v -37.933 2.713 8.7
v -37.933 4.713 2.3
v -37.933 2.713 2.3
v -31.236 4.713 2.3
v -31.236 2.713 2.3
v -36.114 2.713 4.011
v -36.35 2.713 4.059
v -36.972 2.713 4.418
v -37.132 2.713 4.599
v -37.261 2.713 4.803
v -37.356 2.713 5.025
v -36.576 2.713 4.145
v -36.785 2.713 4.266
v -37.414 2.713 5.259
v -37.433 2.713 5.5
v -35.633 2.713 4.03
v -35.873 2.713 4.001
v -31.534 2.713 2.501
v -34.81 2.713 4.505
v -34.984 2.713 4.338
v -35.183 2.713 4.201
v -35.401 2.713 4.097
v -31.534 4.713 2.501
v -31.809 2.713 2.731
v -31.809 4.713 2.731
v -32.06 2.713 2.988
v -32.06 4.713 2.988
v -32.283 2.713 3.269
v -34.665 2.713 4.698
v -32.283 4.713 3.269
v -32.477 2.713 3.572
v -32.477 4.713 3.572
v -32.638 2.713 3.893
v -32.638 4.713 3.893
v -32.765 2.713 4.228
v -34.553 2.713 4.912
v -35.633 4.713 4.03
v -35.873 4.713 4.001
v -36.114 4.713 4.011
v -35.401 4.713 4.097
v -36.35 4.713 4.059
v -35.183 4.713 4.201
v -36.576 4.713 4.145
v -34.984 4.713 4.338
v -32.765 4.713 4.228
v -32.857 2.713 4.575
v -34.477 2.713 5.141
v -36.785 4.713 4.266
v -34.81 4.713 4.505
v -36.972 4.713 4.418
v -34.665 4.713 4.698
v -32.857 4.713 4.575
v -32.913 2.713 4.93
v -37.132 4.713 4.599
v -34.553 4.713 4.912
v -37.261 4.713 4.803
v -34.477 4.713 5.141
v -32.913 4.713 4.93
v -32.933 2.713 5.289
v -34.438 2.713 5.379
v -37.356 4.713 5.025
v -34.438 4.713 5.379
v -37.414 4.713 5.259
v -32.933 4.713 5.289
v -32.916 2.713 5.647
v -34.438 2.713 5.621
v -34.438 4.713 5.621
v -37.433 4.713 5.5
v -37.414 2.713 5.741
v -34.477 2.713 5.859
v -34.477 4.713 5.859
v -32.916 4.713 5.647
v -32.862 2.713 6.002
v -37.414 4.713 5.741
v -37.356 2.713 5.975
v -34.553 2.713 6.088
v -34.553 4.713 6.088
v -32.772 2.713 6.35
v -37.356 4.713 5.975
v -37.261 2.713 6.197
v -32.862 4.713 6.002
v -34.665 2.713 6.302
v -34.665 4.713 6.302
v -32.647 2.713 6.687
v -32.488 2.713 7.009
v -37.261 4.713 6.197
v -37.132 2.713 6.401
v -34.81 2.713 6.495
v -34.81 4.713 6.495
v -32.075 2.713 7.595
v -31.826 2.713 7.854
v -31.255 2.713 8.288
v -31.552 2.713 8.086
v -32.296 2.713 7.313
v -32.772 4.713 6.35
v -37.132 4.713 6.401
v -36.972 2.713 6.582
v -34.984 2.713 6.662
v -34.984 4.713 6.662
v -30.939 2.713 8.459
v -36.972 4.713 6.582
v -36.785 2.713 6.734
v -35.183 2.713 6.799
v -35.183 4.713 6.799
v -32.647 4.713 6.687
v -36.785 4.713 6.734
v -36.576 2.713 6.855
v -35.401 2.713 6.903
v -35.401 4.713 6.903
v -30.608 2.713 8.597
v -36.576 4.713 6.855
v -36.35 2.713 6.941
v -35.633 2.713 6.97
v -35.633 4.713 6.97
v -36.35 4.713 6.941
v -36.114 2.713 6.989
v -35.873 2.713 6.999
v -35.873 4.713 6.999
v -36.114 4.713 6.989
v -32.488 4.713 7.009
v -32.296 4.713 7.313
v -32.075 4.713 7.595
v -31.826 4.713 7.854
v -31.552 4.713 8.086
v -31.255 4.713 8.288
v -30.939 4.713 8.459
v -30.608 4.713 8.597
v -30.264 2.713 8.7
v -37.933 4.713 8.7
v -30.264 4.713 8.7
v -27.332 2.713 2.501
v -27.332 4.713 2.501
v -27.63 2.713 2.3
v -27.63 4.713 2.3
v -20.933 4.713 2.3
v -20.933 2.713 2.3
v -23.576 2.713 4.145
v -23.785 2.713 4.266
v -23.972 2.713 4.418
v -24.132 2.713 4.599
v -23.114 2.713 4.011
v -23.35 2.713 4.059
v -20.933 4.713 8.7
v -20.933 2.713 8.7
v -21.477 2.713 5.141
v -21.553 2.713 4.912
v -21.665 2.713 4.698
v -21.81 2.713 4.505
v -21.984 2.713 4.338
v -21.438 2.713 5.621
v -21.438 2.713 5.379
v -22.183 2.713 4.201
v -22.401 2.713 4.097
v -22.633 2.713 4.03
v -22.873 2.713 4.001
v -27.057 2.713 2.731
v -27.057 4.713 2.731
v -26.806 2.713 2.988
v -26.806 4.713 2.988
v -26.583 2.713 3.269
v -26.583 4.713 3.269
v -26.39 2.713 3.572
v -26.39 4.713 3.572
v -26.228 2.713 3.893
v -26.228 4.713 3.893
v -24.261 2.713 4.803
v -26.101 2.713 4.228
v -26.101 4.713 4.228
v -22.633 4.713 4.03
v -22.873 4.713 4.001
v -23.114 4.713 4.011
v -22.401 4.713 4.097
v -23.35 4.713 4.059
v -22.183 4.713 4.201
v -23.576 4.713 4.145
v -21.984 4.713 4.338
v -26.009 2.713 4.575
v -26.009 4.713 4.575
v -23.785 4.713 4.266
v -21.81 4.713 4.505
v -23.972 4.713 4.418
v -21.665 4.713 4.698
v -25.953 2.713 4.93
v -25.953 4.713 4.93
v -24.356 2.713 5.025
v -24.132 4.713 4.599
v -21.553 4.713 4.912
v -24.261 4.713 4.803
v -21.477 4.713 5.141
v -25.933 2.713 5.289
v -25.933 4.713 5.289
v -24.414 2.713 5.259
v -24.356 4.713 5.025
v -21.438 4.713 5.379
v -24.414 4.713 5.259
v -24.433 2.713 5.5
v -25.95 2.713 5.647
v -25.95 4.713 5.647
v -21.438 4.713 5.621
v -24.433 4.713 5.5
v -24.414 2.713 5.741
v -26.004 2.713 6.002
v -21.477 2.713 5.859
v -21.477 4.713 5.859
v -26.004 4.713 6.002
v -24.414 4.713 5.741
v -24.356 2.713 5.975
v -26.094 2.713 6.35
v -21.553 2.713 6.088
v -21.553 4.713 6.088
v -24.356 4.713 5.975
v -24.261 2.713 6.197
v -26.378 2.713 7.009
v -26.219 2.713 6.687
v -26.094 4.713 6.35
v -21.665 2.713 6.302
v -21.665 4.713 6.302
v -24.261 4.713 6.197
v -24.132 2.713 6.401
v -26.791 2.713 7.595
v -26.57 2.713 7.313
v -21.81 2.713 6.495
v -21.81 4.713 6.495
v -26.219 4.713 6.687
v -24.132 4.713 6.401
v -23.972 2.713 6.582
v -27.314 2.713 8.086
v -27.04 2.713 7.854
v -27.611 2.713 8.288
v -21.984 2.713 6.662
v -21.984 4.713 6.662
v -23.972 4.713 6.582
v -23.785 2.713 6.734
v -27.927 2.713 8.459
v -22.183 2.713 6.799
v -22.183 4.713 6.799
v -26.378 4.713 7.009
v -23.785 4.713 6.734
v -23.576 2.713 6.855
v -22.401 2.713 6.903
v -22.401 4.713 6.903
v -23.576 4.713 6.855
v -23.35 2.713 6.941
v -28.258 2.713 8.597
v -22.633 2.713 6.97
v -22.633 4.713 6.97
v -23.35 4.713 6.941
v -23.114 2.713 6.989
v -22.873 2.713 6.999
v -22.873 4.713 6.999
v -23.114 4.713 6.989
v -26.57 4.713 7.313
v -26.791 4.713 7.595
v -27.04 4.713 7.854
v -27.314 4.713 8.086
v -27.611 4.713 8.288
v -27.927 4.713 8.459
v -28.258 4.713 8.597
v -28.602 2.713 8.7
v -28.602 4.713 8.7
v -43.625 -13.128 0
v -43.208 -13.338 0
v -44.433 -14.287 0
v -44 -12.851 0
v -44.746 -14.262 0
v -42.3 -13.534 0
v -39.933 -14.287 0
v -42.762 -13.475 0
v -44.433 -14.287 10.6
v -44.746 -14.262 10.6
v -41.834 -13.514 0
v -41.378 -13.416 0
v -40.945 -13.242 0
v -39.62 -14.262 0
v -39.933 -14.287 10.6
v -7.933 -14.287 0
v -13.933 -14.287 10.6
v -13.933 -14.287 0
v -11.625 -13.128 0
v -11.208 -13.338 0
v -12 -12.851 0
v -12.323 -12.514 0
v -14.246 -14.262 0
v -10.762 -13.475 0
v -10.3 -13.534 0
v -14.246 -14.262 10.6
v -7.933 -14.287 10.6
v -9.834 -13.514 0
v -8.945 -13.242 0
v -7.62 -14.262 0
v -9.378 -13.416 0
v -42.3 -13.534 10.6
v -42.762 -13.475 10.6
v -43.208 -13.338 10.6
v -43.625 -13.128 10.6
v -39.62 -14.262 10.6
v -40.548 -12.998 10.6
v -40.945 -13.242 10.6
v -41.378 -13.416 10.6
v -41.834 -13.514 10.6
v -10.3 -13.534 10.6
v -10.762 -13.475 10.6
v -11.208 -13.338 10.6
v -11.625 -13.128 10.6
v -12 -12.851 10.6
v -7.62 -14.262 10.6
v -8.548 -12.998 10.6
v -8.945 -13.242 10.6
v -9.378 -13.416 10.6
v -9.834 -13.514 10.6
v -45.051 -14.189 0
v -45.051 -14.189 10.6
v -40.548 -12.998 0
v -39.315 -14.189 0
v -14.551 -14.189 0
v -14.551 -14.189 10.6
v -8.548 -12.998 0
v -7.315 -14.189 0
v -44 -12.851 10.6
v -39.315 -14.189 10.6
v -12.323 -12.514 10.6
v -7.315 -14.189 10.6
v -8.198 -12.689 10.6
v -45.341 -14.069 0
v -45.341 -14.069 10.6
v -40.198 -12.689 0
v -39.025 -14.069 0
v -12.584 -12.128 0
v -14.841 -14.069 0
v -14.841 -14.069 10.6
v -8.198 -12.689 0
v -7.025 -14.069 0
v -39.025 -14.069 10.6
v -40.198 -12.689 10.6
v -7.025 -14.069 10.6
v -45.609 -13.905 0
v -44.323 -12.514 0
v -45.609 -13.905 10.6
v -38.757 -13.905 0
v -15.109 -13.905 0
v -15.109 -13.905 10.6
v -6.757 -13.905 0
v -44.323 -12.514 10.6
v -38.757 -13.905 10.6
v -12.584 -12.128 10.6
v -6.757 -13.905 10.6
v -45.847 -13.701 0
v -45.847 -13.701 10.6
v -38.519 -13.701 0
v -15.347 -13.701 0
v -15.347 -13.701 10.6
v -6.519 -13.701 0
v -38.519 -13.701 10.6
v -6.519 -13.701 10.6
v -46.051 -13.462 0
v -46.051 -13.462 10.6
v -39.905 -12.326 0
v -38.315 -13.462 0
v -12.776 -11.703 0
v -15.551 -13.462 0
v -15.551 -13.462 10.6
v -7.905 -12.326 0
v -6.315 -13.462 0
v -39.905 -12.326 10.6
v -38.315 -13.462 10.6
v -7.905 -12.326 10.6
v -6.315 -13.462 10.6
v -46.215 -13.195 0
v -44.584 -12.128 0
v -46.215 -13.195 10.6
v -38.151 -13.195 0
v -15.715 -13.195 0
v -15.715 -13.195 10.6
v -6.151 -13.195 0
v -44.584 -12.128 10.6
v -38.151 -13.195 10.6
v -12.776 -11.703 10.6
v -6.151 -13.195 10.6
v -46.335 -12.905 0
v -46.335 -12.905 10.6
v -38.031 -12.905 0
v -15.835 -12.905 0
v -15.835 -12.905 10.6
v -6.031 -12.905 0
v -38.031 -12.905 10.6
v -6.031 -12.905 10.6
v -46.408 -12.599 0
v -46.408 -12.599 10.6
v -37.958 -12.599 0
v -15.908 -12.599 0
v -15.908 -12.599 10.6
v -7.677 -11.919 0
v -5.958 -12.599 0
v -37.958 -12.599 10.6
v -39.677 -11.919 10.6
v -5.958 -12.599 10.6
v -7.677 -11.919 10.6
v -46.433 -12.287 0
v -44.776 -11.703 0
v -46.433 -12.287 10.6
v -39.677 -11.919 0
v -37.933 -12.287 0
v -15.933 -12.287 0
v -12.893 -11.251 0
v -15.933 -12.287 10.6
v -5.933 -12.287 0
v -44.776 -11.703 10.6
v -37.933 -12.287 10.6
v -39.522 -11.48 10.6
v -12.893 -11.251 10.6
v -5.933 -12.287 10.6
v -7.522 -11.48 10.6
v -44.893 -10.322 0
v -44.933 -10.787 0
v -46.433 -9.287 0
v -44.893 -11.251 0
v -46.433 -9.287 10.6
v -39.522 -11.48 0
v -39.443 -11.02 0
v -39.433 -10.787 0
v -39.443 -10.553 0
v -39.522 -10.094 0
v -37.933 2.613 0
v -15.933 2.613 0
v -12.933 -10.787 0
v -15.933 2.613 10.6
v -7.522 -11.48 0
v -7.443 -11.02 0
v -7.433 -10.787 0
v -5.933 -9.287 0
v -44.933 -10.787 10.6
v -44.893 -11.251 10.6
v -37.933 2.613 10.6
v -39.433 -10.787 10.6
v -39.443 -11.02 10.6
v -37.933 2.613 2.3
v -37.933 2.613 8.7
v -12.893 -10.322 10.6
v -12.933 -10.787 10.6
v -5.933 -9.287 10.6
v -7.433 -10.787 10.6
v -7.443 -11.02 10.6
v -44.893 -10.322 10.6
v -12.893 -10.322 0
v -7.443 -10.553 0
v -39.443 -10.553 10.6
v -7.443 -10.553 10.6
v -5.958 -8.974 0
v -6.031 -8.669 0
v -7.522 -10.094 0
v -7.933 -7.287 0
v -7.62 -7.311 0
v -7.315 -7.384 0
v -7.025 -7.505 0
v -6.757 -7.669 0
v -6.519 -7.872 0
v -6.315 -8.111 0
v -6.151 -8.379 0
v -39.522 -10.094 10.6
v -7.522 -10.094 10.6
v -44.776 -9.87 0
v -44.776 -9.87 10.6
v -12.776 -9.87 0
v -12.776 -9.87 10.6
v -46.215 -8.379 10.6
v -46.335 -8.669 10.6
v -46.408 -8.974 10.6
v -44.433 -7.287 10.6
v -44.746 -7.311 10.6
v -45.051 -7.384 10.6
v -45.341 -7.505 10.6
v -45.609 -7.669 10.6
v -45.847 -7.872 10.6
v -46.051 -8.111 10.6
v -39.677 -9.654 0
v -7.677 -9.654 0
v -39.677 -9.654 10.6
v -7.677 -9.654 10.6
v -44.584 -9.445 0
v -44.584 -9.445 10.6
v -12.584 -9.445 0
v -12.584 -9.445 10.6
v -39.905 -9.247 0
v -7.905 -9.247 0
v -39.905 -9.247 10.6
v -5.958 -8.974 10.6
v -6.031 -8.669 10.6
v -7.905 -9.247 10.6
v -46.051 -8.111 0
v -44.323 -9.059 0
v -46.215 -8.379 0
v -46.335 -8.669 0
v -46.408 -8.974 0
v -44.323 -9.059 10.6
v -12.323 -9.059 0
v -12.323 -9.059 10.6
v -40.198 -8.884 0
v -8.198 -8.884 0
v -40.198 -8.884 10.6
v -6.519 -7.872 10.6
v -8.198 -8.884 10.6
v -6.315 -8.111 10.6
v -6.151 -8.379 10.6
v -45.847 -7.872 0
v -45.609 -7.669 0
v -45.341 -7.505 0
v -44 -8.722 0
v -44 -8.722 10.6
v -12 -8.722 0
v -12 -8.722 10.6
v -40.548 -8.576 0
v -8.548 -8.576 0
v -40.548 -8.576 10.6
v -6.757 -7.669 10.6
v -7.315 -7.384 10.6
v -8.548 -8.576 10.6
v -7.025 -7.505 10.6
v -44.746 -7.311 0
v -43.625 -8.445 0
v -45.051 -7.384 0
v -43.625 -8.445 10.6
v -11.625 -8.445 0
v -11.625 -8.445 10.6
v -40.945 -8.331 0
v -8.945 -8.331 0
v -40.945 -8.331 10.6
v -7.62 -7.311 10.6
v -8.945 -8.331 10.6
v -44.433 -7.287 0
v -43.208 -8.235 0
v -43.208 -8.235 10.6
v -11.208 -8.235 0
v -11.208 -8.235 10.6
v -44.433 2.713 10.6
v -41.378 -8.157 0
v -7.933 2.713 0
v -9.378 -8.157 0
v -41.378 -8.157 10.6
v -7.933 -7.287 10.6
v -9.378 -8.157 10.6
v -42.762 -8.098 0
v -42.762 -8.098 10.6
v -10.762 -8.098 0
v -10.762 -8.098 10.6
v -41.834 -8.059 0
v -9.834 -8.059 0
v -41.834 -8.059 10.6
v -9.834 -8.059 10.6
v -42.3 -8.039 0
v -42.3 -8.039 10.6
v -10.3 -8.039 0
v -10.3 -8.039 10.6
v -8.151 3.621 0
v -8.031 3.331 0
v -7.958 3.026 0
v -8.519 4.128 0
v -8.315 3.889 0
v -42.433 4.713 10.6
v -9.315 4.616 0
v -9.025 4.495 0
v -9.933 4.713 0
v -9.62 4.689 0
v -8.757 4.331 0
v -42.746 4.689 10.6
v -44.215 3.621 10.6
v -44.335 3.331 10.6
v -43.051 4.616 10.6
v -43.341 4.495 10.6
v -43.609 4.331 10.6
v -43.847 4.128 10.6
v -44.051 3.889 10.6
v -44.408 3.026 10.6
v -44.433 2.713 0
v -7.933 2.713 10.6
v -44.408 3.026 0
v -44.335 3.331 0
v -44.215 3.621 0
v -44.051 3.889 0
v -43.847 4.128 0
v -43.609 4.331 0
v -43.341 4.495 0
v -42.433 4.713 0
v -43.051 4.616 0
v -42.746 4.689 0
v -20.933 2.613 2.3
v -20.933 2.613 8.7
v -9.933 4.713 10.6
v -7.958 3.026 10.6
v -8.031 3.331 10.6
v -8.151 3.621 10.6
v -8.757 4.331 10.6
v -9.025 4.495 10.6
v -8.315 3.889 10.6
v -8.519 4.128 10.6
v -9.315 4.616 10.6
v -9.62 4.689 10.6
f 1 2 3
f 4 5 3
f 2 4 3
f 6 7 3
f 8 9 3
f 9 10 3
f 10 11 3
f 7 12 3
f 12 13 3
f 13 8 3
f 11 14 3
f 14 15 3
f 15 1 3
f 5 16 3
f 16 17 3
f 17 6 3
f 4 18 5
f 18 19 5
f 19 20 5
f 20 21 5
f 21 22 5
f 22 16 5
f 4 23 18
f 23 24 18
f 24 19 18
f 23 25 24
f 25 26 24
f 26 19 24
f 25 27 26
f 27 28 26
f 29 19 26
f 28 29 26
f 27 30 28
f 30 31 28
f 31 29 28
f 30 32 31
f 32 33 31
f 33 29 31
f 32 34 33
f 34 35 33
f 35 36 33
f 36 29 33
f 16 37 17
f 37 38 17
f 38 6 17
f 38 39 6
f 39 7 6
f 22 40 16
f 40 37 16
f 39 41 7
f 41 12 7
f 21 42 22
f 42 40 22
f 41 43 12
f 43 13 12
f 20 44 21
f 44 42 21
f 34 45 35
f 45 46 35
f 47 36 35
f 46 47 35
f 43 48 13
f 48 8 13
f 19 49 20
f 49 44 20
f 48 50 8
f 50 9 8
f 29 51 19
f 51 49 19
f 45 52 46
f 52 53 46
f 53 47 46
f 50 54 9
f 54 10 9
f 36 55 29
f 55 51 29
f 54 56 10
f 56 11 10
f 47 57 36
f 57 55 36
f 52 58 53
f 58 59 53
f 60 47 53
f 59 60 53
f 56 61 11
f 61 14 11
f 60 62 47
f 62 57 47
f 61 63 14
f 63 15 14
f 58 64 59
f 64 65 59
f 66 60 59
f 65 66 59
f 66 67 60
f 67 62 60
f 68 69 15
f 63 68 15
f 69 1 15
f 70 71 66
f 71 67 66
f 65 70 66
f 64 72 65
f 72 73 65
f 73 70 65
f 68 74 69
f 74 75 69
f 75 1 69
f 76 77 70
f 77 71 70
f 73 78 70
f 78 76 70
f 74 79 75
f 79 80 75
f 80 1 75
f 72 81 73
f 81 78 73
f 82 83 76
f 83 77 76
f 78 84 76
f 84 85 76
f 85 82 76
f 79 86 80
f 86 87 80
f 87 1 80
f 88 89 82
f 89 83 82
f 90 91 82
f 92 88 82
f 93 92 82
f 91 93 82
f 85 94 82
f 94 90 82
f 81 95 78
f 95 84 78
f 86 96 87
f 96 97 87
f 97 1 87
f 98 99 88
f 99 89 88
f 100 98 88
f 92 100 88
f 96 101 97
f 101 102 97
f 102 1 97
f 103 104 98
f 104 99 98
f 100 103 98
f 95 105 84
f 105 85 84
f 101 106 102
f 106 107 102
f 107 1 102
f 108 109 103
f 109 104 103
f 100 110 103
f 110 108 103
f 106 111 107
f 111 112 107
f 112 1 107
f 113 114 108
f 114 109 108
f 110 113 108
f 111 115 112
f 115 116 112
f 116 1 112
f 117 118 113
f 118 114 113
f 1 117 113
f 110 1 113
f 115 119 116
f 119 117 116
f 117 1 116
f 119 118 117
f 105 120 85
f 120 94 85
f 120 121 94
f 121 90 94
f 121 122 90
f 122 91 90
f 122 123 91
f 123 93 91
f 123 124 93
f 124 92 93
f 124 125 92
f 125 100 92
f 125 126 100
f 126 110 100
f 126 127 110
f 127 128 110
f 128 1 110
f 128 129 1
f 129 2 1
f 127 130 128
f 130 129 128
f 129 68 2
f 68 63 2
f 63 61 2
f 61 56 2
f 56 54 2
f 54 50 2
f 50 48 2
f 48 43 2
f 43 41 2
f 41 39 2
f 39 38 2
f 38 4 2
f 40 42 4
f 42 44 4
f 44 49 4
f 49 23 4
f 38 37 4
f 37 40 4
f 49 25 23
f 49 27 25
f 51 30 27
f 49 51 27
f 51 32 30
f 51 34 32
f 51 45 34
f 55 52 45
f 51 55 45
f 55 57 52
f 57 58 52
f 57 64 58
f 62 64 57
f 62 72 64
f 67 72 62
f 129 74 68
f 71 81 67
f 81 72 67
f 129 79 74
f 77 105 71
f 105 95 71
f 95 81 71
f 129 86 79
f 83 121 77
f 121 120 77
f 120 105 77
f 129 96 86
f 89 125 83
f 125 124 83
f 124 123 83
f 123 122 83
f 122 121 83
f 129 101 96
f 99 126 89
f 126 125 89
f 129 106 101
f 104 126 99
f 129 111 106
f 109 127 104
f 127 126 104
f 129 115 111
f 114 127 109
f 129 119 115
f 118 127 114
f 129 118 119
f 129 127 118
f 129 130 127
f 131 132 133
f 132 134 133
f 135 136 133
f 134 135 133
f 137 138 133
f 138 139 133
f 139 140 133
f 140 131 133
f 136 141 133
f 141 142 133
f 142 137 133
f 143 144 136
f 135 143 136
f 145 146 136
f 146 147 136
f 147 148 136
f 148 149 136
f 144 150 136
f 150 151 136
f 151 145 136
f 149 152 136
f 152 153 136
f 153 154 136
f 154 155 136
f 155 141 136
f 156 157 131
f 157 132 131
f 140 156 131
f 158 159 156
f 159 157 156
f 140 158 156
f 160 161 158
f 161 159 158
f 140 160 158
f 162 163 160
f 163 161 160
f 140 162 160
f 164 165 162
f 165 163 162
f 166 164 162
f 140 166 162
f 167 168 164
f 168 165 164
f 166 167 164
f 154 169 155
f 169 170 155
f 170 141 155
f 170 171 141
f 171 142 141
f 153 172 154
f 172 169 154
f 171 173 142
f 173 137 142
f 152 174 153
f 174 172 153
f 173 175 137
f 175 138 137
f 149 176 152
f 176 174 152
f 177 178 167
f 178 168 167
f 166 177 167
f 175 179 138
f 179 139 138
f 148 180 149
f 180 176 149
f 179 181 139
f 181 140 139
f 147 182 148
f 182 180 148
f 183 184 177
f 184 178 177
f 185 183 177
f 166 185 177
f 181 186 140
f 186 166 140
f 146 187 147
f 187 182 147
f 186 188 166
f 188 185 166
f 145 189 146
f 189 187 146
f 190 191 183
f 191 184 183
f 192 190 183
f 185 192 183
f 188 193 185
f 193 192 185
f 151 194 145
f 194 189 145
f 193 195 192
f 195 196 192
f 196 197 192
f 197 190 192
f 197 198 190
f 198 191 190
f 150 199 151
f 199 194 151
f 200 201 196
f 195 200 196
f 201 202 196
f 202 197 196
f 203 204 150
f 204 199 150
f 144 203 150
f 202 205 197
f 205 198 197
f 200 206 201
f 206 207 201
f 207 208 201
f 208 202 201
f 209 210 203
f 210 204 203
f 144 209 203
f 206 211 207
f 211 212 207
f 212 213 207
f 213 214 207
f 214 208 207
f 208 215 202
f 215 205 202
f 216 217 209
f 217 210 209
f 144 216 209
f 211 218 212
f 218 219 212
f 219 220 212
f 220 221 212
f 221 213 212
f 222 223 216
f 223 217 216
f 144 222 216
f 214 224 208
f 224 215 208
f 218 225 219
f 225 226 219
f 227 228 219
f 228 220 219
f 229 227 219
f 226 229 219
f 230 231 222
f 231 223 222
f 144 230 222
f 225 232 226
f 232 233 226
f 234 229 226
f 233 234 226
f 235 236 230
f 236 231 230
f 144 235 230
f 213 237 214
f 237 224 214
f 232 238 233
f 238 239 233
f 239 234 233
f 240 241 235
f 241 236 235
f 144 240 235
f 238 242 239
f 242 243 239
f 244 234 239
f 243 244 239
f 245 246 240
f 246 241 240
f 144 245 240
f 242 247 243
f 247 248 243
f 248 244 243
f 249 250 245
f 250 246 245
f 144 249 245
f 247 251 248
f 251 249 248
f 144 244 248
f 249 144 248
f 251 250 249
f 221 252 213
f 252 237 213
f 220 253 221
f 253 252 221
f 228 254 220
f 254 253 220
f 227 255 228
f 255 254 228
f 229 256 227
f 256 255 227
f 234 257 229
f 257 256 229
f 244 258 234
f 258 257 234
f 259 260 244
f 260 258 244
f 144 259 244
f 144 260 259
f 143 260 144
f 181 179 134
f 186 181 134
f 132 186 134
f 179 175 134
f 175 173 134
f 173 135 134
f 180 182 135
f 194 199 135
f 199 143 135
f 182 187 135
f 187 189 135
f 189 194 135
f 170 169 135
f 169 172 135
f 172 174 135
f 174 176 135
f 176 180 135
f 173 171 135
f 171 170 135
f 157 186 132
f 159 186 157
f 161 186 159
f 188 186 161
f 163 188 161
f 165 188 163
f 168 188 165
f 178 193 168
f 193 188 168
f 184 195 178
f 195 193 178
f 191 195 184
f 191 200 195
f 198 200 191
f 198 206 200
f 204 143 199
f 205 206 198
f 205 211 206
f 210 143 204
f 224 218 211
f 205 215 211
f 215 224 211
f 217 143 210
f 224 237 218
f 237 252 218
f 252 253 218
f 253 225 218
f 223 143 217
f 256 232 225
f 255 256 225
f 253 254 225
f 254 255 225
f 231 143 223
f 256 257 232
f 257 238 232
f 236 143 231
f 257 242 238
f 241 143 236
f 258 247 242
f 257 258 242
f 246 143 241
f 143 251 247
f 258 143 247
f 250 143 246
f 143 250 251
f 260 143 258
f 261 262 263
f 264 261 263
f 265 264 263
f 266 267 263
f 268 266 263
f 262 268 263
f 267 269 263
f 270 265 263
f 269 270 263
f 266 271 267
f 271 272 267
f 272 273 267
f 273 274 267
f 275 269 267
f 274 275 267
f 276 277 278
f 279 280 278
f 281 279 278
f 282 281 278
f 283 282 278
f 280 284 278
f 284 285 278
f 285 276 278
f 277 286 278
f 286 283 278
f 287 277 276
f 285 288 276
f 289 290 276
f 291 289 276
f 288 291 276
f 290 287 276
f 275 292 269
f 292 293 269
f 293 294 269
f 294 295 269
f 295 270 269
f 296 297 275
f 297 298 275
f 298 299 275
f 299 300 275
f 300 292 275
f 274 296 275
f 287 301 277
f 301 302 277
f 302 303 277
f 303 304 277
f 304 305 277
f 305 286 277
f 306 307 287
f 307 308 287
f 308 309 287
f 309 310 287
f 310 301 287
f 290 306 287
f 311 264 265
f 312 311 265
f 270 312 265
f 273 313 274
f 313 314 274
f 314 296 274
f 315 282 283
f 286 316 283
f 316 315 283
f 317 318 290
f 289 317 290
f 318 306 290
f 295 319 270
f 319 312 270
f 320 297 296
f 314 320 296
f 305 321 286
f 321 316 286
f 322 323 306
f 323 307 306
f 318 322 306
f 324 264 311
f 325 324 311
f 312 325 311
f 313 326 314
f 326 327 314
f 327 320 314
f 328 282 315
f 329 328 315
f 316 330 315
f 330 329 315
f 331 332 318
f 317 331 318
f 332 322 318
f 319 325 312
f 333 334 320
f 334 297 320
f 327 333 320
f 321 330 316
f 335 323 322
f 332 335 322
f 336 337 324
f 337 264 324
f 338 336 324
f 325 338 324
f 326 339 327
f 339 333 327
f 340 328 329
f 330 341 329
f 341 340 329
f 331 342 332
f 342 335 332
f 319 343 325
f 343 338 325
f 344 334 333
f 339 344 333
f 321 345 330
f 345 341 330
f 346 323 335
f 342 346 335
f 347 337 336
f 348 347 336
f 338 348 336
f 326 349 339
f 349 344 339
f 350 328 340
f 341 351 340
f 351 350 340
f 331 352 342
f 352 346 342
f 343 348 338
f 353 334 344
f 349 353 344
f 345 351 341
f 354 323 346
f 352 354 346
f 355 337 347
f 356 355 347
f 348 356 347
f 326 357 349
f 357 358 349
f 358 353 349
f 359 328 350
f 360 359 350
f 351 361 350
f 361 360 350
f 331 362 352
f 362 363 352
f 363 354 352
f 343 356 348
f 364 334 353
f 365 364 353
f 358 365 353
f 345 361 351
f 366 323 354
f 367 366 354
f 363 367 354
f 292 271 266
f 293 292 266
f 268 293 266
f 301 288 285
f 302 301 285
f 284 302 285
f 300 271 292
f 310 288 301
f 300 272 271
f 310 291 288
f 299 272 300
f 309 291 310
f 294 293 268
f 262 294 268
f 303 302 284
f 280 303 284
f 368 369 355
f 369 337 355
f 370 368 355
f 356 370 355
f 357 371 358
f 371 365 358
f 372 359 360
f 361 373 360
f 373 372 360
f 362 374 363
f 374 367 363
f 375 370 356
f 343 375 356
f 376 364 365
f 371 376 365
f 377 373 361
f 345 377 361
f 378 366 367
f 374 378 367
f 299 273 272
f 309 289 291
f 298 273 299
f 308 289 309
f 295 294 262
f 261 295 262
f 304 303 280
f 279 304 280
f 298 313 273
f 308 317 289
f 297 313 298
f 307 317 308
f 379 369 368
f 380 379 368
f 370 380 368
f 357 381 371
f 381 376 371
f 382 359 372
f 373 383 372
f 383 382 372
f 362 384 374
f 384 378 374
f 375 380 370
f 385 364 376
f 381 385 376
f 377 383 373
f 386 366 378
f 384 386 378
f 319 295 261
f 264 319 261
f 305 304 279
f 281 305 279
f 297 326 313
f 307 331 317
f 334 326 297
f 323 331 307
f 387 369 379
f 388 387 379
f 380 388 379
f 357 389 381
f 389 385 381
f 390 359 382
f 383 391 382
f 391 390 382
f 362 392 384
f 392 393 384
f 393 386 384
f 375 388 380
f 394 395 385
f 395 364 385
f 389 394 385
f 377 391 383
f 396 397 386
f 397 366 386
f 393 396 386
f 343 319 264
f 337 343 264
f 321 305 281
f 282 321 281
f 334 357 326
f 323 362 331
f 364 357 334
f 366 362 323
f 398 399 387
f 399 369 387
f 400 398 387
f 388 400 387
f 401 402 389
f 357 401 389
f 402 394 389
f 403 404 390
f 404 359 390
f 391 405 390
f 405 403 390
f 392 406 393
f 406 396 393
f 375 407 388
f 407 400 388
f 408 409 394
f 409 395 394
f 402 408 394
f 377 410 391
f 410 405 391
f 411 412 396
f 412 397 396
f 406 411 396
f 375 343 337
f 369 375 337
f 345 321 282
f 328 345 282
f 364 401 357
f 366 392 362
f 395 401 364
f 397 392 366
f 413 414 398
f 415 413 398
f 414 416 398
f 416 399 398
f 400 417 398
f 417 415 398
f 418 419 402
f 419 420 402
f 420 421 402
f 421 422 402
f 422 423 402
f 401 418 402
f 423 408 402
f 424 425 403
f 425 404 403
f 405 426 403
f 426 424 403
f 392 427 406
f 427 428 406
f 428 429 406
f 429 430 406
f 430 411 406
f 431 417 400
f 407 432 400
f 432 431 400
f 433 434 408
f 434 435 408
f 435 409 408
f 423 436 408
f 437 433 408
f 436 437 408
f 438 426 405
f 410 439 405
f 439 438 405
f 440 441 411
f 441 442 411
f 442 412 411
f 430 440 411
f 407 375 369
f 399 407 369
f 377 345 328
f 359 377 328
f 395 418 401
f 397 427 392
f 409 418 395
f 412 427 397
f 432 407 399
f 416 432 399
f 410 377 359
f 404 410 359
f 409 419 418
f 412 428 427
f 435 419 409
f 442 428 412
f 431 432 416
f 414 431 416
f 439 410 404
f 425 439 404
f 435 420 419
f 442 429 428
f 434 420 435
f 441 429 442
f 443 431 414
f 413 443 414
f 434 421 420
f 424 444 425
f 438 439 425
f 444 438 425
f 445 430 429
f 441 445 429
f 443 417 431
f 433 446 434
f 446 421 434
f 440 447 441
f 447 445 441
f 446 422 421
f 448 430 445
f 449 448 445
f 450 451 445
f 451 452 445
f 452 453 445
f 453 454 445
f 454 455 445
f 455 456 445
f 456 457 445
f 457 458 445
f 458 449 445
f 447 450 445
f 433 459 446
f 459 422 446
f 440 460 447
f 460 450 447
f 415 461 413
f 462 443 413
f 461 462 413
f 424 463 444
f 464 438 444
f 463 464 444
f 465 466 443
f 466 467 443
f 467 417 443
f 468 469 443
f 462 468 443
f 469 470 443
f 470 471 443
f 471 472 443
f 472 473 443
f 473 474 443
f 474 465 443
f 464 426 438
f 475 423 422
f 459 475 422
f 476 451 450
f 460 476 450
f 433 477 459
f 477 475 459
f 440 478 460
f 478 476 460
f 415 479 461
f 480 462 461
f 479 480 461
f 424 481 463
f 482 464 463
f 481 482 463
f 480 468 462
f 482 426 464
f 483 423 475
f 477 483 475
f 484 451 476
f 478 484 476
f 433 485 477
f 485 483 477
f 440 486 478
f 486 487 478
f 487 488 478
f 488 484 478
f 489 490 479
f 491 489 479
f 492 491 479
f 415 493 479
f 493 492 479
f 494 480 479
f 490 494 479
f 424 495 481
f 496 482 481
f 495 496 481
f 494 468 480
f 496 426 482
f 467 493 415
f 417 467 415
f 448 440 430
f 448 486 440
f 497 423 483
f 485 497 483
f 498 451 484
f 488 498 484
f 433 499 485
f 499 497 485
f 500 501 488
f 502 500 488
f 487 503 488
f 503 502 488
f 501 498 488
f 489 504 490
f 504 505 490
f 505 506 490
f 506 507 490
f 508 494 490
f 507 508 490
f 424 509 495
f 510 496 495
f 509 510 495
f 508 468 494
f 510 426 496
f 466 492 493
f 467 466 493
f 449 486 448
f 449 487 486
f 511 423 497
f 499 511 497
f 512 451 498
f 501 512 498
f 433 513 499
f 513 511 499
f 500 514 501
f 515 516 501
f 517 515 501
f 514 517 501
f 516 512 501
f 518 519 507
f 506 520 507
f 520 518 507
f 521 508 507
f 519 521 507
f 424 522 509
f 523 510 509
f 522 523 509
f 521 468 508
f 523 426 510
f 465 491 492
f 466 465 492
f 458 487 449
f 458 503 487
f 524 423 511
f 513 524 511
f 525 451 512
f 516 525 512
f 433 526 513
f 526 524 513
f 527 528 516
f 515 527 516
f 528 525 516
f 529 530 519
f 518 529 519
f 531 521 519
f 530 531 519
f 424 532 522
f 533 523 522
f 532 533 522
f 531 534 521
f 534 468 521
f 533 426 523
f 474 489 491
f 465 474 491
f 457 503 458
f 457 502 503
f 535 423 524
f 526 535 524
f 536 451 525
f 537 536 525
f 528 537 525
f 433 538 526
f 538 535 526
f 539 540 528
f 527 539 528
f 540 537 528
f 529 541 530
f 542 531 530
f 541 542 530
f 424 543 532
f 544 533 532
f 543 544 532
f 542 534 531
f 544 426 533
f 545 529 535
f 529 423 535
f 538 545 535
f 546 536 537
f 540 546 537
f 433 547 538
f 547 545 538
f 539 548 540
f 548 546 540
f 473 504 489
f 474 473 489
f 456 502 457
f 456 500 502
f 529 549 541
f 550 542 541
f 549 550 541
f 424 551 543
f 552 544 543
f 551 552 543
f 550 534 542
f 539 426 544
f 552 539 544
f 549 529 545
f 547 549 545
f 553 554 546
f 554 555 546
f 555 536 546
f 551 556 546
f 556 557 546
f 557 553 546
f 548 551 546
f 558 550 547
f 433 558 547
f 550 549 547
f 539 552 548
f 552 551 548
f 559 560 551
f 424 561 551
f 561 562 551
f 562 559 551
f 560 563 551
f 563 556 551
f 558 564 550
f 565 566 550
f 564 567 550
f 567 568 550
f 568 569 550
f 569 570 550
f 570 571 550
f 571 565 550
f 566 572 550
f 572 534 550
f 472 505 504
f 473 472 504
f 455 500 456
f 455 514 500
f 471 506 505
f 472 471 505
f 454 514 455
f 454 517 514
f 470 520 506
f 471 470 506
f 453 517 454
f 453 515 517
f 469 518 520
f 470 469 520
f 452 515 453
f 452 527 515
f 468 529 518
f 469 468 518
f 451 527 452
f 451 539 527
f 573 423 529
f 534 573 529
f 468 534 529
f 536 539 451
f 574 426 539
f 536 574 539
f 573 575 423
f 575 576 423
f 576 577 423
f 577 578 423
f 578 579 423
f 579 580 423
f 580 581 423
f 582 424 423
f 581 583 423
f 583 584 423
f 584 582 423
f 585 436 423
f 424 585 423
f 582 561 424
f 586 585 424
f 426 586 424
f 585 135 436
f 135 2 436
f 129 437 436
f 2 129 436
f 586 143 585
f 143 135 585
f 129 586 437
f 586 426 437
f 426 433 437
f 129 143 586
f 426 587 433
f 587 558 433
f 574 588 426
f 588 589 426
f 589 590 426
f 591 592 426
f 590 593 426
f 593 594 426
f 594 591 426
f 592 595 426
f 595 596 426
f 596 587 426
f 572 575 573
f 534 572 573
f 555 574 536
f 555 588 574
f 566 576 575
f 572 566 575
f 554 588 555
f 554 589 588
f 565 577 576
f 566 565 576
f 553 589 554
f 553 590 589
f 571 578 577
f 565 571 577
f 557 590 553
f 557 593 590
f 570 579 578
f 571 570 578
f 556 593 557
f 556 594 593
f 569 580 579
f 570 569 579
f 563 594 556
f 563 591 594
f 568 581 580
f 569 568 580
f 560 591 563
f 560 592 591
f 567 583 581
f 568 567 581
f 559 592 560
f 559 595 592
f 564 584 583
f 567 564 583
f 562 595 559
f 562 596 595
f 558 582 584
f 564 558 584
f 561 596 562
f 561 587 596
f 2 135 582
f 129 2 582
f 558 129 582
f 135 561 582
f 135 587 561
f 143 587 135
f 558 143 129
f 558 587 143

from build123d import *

# Parameters (mm, degrees)
CROQUIS1_W                = 40.5
CROQUIS1_H                = 7
CROQUIS1_R                = 2.75
SALIENTE_EXTRUIR1_DEPTH   = 10.6
CROQUIS5_R                = 3.4
CORTAR_EXTRUIR4_DEPTH     = 7
REDONDEO1_R               = 2
CROQUIS7_W                = 17
CROQUIS7_H                = 6.4
CORTAR_EXTRUIR5_DEPTH     = 5
CROQUIS8_R                = 1.5
CORTAR_EXTRUIR6_DEPTH     = 2
CROQUIS11_W               = 36.5
CROQUIS11_H               = 10.6
CROQUIS11_W_2             = 17
CROQUIS11_H_2             = 6.4
SALIENTE_EXTRUIR3_DEPTH   = 12
CROQUIS12_R               = 1.5
SALIENTE_EXTRUIR4_DEPTH   = 2
SALIENTE_EXTRUIR4_2_DEPTH = 2
CORTAR_EXTRUIR7_START     = -10.6
CORTAR_EXTRUIR7_DEPTH     = 10.6
REDONDEO2_R               = 2


with BuildPart() as part:
    # Croquis1 → Saliente-Extruir1 (new body)
    with BuildSketch(Plane.XY):
        with Locations((-26.183013117, -10.786568945)):
            Rectangle(CROQUIS1_W, CROQUIS1_H)
        with Locations((-42.183013117, -10.786568945)):
            Circle(CROQUIS1_R, mode=Mode.SUBTRACT)
        with Locations((-10.183013117, -10.786568945)):
            Circle(CROQUIS1_R, mode=Mode.SUBTRACT)
    extrude(amount=SALIENTE_EXTRUIR1_DEPTH)

    # Croquis5 → Cortar-Extruir4 (cut)
    with BuildSketch(Plane.XZ.offset(14.286568945)):
        with Locations(Location((-29.433013117, 5.3, 0), (0, 0, 270))):
            Circle(CROQUIS5_R)
    extrude(amount=-CORTAR_EXTRUIR4_DEPTH, mode=Mode.SUBTRACT)

    # Redondeo1
    redondeo1_edges = [part.edges().sort_by_distance(p)[0] for p in [
        (-46.433013117, -7.286568945, 5.3),
        (-5.933013117, -7.286568945, 5.3),
        (-5.933013117, -14.286568945, 5.3),
        (-46.433013117, -14.286568945, 5.3),
    ]]
    fillet(redondeo1_edges, radius=REDONDEO1_R)

    # Croquis7 → Cortar-Extruir5 (cut)
    with BuildSketch(Plane(origin=(0, -7.286568945, 0), x_dir=(1, 0, 0), z_dir=(0, 1, 0))):
        with Locations((-29.433013117, -5.5)):
            Rectangle(CROQUIS7_W, CROQUIS7_H)
    extrude(amount=-CORTAR_EXTRUIR5_DEPTH, mode=Mode.SUBTRACT)

    # Croquis8 → Cortar-Extruir6 (cut)
    with BuildSketch(Plane(origin=(0, -12.286568945, 0), x_dir=(1, 0, 0), z_dir=(0, 1, 0))):
        with Locations(Location((-22.933013117, -5.5, 0), (0, 0, 270))):
            Circle(CROQUIS8_R)
        with Locations(Location((-35.933013117, -5.5, 0), (0, 0, 270))):
            Circle(CROQUIS8_R)
    extrude(amount=-CORTAR_EXTRUIR6_DEPTH, mode=Mode.SUBTRACT)

    # Croquis11 → Saliente-Extruir3 (add)
    with BuildSketch(Plane(origin=(0, -7.286568945, 0), x_dir=(1, 0, 0), z_dir=(0, 1, 0))):
        with Locations((-26.183013117, -5.3)):
            Rectangle(CROQUIS11_W, CROQUIS11_H)
        with Locations((-29.433013117, -5.5)):
            Rectangle(CROQUIS11_W_2, CROQUIS11_H_2, mode=Mode.SUBTRACT)
    extrude(amount=SALIENTE_EXTRUIR3_DEPTH)

    # Croquis13 → Cortar-Extruir7 (cut)
    with BuildSketch(Plane(origin=(0, 0, 0), x_dir=(-1, 0, 0), z_dir=(0, 0, -1)).offset(CORTAR_EXTRUIR7_START)):
        Polygon((37.933013117, -14.286568945), (15.933013117, -14.286568945), (15.933013117, 2.613431055), (20.933013117, 2.613431055), (37.933013117, 2.613431055), align=None)
    extrude(amount=CORTAR_EXTRUIR7_DEPTH, mode=Mode.SUBTRACT)

    # Redondeo2
    redondeo2_edges = [part.edges().sort_by_distance(p)[0] for p in [
        (-37.933013117, -14.286568945, 5.3),
        (-15.933013117, -14.286568945, 5.3),
        (-44.433013117, 4.713431055, 5.3),
        (-7.933013117, 4.713431055, 5.3),
    ]]
    fillet(redondeo2_edges, radius=REDONDEO2_R)


with BuildPart() as body_2:
    # Croquis12 → Saliente-Extruir4 (new body)
    with BuildSketch(Plane(origin=(0, 4.713431055, 0), x_dir=(1, 0, 0), z_dir=(0, 1, 0))):
        with BuildLine():
            Line((-31.235788754, -2.3), (-37.933013117, -2.3))
            Line((-37.933013117, -2.3), (-37.933013117, -8.7))
            Line((-37.933013117, -8.7), (-30.263675503, -8.7))
            ThreePointArc((-30.263675503, -8.7), (-32.893323646, -5.825595894), (-31.235788754, -2.3))
        make_face()
        with Locations(Location((-35.933013117, -5.5, 0), (0, 0, 180))):
            Circle(CROQUIS12_R, mode=Mode.SUBTRACT)
    extrude(amount=-SALIENTE_EXTRUIR4_DEPTH)


with BuildPart() as body_3:
    # Croquis12 → Saliente-Extruir4 2 (new body)
    with BuildSketch(Plane(origin=(0, 4.713431055, 0), x_dir=(1, 0, 0), z_dir=(0, 1, 0))):
        with BuildLine():
            Line((-20.933013117, -2.3), (-27.630237479, -2.3))
            ThreePointArc((-27.630237479, -2.3), (-26.386727285, -3.576589824), (-25.933013117, -5.3))
            ThreePointArc((-25.933013117, -5.3), (-26.680076653, -7.461328486), (-28.60235073, -8.7))
            Line((-28.60235073, -8.7), (-20.933013117, -8.7))
            Line((-20.933013117, -8.7), (-20.933013117, -2.3))
        make_face()
        with Locations(Location((-22.933013117, -5.5, 0), (0, 0, 180))):
            Circle(CROQUIS12_R, mode=Mode.SUBTRACT)
    extrude(amount=-SALIENTE_EXTRUIR4_2_DEPTH)


solid = Compound([part.part, body_2.part, body_3.part])
